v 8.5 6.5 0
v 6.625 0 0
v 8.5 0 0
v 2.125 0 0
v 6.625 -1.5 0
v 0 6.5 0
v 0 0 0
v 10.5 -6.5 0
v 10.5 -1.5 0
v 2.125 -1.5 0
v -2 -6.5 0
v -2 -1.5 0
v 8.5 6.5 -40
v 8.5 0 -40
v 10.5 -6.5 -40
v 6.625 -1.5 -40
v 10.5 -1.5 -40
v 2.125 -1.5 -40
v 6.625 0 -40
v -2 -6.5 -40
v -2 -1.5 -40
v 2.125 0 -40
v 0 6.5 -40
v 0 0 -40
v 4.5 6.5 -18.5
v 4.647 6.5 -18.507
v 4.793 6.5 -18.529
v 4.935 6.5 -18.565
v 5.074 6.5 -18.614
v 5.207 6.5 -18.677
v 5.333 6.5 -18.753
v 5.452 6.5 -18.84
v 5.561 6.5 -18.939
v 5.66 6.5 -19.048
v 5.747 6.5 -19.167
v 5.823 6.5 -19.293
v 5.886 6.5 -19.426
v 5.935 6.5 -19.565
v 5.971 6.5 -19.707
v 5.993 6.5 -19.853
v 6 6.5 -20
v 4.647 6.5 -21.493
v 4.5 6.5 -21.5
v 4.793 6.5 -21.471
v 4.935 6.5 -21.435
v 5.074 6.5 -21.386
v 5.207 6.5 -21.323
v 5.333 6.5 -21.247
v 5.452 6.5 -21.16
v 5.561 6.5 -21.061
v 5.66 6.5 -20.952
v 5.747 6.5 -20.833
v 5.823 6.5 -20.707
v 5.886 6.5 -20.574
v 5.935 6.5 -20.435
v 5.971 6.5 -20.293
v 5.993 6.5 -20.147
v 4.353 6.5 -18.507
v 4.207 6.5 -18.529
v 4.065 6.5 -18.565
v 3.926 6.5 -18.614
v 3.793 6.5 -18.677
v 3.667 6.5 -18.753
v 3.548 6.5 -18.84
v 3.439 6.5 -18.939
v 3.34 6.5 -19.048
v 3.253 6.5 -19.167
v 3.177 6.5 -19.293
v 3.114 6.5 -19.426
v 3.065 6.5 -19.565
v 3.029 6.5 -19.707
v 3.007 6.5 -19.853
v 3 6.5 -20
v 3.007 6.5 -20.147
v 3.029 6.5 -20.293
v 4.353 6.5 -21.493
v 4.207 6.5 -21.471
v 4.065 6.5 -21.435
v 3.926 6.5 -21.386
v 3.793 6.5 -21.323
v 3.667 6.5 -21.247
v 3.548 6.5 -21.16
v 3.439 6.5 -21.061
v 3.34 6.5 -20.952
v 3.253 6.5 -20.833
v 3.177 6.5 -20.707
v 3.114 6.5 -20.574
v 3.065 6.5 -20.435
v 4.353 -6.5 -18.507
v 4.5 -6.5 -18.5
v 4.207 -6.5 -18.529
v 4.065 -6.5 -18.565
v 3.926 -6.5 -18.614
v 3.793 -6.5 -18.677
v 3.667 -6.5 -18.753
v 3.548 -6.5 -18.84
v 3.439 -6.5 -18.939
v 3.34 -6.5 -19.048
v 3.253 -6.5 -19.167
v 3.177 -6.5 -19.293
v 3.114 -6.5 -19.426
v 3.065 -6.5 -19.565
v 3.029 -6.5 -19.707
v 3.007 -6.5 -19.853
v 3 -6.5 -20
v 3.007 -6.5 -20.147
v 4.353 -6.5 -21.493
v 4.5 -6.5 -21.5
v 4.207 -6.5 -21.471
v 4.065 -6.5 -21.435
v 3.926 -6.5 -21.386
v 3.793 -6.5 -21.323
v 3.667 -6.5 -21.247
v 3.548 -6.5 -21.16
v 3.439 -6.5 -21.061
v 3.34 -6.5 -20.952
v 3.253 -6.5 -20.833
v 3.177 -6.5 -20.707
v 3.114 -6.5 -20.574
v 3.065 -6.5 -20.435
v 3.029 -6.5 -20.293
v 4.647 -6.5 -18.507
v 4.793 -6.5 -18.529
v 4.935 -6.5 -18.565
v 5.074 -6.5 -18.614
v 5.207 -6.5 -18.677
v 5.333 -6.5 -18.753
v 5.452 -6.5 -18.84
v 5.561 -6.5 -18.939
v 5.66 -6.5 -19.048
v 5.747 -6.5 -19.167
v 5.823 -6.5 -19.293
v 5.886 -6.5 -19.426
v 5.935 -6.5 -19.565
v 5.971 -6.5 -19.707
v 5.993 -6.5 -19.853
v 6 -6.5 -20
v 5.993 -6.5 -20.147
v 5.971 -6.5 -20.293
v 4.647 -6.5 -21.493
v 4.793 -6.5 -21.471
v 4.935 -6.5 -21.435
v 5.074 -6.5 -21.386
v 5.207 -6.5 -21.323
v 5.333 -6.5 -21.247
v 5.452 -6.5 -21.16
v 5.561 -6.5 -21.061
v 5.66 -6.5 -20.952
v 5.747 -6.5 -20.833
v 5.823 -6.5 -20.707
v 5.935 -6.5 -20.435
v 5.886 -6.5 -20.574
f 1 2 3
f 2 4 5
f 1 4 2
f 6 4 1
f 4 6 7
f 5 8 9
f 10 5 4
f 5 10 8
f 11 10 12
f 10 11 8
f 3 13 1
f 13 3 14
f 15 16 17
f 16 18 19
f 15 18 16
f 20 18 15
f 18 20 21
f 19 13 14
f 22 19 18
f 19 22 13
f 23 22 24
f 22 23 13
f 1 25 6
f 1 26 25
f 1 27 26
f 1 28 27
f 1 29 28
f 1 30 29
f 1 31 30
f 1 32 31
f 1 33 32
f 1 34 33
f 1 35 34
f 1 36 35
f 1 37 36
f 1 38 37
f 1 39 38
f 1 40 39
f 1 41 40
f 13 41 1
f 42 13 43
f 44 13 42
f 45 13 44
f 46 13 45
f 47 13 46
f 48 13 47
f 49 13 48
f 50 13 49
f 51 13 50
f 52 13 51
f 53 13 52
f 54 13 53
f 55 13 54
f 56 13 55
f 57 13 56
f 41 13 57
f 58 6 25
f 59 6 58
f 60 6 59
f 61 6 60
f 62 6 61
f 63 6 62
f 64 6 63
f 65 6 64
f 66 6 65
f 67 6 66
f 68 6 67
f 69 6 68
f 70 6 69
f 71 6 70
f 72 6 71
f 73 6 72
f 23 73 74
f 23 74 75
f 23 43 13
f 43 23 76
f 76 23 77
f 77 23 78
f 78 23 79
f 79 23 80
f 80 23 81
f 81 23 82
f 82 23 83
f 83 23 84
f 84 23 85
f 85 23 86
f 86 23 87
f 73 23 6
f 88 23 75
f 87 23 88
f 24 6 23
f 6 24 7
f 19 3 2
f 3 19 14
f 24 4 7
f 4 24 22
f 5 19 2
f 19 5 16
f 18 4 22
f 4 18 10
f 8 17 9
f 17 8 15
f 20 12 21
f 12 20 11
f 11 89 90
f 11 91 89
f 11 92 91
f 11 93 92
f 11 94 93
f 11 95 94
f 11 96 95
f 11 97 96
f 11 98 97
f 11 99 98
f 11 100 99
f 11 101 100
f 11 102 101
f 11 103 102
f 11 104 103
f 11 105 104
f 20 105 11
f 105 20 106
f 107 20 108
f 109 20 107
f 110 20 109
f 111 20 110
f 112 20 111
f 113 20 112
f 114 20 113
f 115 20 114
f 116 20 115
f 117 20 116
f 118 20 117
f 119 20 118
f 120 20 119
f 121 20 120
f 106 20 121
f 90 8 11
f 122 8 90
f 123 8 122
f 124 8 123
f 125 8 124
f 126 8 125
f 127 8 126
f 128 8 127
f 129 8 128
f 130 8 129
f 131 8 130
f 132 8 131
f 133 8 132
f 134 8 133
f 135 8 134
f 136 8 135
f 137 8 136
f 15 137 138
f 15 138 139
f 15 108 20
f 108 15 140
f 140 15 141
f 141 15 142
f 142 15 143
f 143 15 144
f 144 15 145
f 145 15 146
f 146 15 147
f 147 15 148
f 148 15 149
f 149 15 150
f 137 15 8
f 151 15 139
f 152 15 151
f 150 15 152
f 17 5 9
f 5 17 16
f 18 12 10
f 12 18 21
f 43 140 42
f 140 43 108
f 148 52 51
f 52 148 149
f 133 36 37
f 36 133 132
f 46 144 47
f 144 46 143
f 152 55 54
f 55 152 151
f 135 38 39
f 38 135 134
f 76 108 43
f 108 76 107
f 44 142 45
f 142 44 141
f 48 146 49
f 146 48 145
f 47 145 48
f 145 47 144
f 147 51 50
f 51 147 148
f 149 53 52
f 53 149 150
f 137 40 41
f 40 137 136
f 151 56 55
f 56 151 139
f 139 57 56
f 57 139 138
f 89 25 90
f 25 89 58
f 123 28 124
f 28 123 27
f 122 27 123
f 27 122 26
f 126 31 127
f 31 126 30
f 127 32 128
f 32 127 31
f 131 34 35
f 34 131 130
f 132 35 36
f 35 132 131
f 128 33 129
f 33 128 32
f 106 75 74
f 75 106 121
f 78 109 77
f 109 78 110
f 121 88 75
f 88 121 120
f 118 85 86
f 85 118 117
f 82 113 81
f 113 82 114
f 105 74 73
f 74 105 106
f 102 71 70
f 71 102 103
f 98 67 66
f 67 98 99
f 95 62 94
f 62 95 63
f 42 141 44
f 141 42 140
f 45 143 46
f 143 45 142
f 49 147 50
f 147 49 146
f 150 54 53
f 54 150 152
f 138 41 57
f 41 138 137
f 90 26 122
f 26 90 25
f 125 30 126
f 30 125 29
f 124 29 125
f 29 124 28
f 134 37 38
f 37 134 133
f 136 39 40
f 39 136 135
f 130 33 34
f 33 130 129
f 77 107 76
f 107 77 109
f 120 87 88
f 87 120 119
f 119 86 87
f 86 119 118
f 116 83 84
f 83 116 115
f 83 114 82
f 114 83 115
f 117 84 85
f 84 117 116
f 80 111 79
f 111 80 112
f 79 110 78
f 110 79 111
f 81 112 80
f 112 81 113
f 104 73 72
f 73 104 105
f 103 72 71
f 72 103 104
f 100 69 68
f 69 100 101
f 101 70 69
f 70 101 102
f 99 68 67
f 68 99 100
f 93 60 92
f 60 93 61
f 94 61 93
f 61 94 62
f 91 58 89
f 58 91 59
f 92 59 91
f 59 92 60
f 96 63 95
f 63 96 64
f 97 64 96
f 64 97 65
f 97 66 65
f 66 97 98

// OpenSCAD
rotate(a=[0,90,0]) 
difference() { 
    union() {
        cube([40,6.5,8.5]);
        translate(v=[0,-2,2.125]) cube([40,2.5,4.5]);
        translate(v=[0,-6.5,-2]) cube([40,5,12.5]);
    }
    translate(v=[20,7,4.5]) rotate(a=[90,0,0]) cylinder(h=15,r=1.5, $fn=64);
}
